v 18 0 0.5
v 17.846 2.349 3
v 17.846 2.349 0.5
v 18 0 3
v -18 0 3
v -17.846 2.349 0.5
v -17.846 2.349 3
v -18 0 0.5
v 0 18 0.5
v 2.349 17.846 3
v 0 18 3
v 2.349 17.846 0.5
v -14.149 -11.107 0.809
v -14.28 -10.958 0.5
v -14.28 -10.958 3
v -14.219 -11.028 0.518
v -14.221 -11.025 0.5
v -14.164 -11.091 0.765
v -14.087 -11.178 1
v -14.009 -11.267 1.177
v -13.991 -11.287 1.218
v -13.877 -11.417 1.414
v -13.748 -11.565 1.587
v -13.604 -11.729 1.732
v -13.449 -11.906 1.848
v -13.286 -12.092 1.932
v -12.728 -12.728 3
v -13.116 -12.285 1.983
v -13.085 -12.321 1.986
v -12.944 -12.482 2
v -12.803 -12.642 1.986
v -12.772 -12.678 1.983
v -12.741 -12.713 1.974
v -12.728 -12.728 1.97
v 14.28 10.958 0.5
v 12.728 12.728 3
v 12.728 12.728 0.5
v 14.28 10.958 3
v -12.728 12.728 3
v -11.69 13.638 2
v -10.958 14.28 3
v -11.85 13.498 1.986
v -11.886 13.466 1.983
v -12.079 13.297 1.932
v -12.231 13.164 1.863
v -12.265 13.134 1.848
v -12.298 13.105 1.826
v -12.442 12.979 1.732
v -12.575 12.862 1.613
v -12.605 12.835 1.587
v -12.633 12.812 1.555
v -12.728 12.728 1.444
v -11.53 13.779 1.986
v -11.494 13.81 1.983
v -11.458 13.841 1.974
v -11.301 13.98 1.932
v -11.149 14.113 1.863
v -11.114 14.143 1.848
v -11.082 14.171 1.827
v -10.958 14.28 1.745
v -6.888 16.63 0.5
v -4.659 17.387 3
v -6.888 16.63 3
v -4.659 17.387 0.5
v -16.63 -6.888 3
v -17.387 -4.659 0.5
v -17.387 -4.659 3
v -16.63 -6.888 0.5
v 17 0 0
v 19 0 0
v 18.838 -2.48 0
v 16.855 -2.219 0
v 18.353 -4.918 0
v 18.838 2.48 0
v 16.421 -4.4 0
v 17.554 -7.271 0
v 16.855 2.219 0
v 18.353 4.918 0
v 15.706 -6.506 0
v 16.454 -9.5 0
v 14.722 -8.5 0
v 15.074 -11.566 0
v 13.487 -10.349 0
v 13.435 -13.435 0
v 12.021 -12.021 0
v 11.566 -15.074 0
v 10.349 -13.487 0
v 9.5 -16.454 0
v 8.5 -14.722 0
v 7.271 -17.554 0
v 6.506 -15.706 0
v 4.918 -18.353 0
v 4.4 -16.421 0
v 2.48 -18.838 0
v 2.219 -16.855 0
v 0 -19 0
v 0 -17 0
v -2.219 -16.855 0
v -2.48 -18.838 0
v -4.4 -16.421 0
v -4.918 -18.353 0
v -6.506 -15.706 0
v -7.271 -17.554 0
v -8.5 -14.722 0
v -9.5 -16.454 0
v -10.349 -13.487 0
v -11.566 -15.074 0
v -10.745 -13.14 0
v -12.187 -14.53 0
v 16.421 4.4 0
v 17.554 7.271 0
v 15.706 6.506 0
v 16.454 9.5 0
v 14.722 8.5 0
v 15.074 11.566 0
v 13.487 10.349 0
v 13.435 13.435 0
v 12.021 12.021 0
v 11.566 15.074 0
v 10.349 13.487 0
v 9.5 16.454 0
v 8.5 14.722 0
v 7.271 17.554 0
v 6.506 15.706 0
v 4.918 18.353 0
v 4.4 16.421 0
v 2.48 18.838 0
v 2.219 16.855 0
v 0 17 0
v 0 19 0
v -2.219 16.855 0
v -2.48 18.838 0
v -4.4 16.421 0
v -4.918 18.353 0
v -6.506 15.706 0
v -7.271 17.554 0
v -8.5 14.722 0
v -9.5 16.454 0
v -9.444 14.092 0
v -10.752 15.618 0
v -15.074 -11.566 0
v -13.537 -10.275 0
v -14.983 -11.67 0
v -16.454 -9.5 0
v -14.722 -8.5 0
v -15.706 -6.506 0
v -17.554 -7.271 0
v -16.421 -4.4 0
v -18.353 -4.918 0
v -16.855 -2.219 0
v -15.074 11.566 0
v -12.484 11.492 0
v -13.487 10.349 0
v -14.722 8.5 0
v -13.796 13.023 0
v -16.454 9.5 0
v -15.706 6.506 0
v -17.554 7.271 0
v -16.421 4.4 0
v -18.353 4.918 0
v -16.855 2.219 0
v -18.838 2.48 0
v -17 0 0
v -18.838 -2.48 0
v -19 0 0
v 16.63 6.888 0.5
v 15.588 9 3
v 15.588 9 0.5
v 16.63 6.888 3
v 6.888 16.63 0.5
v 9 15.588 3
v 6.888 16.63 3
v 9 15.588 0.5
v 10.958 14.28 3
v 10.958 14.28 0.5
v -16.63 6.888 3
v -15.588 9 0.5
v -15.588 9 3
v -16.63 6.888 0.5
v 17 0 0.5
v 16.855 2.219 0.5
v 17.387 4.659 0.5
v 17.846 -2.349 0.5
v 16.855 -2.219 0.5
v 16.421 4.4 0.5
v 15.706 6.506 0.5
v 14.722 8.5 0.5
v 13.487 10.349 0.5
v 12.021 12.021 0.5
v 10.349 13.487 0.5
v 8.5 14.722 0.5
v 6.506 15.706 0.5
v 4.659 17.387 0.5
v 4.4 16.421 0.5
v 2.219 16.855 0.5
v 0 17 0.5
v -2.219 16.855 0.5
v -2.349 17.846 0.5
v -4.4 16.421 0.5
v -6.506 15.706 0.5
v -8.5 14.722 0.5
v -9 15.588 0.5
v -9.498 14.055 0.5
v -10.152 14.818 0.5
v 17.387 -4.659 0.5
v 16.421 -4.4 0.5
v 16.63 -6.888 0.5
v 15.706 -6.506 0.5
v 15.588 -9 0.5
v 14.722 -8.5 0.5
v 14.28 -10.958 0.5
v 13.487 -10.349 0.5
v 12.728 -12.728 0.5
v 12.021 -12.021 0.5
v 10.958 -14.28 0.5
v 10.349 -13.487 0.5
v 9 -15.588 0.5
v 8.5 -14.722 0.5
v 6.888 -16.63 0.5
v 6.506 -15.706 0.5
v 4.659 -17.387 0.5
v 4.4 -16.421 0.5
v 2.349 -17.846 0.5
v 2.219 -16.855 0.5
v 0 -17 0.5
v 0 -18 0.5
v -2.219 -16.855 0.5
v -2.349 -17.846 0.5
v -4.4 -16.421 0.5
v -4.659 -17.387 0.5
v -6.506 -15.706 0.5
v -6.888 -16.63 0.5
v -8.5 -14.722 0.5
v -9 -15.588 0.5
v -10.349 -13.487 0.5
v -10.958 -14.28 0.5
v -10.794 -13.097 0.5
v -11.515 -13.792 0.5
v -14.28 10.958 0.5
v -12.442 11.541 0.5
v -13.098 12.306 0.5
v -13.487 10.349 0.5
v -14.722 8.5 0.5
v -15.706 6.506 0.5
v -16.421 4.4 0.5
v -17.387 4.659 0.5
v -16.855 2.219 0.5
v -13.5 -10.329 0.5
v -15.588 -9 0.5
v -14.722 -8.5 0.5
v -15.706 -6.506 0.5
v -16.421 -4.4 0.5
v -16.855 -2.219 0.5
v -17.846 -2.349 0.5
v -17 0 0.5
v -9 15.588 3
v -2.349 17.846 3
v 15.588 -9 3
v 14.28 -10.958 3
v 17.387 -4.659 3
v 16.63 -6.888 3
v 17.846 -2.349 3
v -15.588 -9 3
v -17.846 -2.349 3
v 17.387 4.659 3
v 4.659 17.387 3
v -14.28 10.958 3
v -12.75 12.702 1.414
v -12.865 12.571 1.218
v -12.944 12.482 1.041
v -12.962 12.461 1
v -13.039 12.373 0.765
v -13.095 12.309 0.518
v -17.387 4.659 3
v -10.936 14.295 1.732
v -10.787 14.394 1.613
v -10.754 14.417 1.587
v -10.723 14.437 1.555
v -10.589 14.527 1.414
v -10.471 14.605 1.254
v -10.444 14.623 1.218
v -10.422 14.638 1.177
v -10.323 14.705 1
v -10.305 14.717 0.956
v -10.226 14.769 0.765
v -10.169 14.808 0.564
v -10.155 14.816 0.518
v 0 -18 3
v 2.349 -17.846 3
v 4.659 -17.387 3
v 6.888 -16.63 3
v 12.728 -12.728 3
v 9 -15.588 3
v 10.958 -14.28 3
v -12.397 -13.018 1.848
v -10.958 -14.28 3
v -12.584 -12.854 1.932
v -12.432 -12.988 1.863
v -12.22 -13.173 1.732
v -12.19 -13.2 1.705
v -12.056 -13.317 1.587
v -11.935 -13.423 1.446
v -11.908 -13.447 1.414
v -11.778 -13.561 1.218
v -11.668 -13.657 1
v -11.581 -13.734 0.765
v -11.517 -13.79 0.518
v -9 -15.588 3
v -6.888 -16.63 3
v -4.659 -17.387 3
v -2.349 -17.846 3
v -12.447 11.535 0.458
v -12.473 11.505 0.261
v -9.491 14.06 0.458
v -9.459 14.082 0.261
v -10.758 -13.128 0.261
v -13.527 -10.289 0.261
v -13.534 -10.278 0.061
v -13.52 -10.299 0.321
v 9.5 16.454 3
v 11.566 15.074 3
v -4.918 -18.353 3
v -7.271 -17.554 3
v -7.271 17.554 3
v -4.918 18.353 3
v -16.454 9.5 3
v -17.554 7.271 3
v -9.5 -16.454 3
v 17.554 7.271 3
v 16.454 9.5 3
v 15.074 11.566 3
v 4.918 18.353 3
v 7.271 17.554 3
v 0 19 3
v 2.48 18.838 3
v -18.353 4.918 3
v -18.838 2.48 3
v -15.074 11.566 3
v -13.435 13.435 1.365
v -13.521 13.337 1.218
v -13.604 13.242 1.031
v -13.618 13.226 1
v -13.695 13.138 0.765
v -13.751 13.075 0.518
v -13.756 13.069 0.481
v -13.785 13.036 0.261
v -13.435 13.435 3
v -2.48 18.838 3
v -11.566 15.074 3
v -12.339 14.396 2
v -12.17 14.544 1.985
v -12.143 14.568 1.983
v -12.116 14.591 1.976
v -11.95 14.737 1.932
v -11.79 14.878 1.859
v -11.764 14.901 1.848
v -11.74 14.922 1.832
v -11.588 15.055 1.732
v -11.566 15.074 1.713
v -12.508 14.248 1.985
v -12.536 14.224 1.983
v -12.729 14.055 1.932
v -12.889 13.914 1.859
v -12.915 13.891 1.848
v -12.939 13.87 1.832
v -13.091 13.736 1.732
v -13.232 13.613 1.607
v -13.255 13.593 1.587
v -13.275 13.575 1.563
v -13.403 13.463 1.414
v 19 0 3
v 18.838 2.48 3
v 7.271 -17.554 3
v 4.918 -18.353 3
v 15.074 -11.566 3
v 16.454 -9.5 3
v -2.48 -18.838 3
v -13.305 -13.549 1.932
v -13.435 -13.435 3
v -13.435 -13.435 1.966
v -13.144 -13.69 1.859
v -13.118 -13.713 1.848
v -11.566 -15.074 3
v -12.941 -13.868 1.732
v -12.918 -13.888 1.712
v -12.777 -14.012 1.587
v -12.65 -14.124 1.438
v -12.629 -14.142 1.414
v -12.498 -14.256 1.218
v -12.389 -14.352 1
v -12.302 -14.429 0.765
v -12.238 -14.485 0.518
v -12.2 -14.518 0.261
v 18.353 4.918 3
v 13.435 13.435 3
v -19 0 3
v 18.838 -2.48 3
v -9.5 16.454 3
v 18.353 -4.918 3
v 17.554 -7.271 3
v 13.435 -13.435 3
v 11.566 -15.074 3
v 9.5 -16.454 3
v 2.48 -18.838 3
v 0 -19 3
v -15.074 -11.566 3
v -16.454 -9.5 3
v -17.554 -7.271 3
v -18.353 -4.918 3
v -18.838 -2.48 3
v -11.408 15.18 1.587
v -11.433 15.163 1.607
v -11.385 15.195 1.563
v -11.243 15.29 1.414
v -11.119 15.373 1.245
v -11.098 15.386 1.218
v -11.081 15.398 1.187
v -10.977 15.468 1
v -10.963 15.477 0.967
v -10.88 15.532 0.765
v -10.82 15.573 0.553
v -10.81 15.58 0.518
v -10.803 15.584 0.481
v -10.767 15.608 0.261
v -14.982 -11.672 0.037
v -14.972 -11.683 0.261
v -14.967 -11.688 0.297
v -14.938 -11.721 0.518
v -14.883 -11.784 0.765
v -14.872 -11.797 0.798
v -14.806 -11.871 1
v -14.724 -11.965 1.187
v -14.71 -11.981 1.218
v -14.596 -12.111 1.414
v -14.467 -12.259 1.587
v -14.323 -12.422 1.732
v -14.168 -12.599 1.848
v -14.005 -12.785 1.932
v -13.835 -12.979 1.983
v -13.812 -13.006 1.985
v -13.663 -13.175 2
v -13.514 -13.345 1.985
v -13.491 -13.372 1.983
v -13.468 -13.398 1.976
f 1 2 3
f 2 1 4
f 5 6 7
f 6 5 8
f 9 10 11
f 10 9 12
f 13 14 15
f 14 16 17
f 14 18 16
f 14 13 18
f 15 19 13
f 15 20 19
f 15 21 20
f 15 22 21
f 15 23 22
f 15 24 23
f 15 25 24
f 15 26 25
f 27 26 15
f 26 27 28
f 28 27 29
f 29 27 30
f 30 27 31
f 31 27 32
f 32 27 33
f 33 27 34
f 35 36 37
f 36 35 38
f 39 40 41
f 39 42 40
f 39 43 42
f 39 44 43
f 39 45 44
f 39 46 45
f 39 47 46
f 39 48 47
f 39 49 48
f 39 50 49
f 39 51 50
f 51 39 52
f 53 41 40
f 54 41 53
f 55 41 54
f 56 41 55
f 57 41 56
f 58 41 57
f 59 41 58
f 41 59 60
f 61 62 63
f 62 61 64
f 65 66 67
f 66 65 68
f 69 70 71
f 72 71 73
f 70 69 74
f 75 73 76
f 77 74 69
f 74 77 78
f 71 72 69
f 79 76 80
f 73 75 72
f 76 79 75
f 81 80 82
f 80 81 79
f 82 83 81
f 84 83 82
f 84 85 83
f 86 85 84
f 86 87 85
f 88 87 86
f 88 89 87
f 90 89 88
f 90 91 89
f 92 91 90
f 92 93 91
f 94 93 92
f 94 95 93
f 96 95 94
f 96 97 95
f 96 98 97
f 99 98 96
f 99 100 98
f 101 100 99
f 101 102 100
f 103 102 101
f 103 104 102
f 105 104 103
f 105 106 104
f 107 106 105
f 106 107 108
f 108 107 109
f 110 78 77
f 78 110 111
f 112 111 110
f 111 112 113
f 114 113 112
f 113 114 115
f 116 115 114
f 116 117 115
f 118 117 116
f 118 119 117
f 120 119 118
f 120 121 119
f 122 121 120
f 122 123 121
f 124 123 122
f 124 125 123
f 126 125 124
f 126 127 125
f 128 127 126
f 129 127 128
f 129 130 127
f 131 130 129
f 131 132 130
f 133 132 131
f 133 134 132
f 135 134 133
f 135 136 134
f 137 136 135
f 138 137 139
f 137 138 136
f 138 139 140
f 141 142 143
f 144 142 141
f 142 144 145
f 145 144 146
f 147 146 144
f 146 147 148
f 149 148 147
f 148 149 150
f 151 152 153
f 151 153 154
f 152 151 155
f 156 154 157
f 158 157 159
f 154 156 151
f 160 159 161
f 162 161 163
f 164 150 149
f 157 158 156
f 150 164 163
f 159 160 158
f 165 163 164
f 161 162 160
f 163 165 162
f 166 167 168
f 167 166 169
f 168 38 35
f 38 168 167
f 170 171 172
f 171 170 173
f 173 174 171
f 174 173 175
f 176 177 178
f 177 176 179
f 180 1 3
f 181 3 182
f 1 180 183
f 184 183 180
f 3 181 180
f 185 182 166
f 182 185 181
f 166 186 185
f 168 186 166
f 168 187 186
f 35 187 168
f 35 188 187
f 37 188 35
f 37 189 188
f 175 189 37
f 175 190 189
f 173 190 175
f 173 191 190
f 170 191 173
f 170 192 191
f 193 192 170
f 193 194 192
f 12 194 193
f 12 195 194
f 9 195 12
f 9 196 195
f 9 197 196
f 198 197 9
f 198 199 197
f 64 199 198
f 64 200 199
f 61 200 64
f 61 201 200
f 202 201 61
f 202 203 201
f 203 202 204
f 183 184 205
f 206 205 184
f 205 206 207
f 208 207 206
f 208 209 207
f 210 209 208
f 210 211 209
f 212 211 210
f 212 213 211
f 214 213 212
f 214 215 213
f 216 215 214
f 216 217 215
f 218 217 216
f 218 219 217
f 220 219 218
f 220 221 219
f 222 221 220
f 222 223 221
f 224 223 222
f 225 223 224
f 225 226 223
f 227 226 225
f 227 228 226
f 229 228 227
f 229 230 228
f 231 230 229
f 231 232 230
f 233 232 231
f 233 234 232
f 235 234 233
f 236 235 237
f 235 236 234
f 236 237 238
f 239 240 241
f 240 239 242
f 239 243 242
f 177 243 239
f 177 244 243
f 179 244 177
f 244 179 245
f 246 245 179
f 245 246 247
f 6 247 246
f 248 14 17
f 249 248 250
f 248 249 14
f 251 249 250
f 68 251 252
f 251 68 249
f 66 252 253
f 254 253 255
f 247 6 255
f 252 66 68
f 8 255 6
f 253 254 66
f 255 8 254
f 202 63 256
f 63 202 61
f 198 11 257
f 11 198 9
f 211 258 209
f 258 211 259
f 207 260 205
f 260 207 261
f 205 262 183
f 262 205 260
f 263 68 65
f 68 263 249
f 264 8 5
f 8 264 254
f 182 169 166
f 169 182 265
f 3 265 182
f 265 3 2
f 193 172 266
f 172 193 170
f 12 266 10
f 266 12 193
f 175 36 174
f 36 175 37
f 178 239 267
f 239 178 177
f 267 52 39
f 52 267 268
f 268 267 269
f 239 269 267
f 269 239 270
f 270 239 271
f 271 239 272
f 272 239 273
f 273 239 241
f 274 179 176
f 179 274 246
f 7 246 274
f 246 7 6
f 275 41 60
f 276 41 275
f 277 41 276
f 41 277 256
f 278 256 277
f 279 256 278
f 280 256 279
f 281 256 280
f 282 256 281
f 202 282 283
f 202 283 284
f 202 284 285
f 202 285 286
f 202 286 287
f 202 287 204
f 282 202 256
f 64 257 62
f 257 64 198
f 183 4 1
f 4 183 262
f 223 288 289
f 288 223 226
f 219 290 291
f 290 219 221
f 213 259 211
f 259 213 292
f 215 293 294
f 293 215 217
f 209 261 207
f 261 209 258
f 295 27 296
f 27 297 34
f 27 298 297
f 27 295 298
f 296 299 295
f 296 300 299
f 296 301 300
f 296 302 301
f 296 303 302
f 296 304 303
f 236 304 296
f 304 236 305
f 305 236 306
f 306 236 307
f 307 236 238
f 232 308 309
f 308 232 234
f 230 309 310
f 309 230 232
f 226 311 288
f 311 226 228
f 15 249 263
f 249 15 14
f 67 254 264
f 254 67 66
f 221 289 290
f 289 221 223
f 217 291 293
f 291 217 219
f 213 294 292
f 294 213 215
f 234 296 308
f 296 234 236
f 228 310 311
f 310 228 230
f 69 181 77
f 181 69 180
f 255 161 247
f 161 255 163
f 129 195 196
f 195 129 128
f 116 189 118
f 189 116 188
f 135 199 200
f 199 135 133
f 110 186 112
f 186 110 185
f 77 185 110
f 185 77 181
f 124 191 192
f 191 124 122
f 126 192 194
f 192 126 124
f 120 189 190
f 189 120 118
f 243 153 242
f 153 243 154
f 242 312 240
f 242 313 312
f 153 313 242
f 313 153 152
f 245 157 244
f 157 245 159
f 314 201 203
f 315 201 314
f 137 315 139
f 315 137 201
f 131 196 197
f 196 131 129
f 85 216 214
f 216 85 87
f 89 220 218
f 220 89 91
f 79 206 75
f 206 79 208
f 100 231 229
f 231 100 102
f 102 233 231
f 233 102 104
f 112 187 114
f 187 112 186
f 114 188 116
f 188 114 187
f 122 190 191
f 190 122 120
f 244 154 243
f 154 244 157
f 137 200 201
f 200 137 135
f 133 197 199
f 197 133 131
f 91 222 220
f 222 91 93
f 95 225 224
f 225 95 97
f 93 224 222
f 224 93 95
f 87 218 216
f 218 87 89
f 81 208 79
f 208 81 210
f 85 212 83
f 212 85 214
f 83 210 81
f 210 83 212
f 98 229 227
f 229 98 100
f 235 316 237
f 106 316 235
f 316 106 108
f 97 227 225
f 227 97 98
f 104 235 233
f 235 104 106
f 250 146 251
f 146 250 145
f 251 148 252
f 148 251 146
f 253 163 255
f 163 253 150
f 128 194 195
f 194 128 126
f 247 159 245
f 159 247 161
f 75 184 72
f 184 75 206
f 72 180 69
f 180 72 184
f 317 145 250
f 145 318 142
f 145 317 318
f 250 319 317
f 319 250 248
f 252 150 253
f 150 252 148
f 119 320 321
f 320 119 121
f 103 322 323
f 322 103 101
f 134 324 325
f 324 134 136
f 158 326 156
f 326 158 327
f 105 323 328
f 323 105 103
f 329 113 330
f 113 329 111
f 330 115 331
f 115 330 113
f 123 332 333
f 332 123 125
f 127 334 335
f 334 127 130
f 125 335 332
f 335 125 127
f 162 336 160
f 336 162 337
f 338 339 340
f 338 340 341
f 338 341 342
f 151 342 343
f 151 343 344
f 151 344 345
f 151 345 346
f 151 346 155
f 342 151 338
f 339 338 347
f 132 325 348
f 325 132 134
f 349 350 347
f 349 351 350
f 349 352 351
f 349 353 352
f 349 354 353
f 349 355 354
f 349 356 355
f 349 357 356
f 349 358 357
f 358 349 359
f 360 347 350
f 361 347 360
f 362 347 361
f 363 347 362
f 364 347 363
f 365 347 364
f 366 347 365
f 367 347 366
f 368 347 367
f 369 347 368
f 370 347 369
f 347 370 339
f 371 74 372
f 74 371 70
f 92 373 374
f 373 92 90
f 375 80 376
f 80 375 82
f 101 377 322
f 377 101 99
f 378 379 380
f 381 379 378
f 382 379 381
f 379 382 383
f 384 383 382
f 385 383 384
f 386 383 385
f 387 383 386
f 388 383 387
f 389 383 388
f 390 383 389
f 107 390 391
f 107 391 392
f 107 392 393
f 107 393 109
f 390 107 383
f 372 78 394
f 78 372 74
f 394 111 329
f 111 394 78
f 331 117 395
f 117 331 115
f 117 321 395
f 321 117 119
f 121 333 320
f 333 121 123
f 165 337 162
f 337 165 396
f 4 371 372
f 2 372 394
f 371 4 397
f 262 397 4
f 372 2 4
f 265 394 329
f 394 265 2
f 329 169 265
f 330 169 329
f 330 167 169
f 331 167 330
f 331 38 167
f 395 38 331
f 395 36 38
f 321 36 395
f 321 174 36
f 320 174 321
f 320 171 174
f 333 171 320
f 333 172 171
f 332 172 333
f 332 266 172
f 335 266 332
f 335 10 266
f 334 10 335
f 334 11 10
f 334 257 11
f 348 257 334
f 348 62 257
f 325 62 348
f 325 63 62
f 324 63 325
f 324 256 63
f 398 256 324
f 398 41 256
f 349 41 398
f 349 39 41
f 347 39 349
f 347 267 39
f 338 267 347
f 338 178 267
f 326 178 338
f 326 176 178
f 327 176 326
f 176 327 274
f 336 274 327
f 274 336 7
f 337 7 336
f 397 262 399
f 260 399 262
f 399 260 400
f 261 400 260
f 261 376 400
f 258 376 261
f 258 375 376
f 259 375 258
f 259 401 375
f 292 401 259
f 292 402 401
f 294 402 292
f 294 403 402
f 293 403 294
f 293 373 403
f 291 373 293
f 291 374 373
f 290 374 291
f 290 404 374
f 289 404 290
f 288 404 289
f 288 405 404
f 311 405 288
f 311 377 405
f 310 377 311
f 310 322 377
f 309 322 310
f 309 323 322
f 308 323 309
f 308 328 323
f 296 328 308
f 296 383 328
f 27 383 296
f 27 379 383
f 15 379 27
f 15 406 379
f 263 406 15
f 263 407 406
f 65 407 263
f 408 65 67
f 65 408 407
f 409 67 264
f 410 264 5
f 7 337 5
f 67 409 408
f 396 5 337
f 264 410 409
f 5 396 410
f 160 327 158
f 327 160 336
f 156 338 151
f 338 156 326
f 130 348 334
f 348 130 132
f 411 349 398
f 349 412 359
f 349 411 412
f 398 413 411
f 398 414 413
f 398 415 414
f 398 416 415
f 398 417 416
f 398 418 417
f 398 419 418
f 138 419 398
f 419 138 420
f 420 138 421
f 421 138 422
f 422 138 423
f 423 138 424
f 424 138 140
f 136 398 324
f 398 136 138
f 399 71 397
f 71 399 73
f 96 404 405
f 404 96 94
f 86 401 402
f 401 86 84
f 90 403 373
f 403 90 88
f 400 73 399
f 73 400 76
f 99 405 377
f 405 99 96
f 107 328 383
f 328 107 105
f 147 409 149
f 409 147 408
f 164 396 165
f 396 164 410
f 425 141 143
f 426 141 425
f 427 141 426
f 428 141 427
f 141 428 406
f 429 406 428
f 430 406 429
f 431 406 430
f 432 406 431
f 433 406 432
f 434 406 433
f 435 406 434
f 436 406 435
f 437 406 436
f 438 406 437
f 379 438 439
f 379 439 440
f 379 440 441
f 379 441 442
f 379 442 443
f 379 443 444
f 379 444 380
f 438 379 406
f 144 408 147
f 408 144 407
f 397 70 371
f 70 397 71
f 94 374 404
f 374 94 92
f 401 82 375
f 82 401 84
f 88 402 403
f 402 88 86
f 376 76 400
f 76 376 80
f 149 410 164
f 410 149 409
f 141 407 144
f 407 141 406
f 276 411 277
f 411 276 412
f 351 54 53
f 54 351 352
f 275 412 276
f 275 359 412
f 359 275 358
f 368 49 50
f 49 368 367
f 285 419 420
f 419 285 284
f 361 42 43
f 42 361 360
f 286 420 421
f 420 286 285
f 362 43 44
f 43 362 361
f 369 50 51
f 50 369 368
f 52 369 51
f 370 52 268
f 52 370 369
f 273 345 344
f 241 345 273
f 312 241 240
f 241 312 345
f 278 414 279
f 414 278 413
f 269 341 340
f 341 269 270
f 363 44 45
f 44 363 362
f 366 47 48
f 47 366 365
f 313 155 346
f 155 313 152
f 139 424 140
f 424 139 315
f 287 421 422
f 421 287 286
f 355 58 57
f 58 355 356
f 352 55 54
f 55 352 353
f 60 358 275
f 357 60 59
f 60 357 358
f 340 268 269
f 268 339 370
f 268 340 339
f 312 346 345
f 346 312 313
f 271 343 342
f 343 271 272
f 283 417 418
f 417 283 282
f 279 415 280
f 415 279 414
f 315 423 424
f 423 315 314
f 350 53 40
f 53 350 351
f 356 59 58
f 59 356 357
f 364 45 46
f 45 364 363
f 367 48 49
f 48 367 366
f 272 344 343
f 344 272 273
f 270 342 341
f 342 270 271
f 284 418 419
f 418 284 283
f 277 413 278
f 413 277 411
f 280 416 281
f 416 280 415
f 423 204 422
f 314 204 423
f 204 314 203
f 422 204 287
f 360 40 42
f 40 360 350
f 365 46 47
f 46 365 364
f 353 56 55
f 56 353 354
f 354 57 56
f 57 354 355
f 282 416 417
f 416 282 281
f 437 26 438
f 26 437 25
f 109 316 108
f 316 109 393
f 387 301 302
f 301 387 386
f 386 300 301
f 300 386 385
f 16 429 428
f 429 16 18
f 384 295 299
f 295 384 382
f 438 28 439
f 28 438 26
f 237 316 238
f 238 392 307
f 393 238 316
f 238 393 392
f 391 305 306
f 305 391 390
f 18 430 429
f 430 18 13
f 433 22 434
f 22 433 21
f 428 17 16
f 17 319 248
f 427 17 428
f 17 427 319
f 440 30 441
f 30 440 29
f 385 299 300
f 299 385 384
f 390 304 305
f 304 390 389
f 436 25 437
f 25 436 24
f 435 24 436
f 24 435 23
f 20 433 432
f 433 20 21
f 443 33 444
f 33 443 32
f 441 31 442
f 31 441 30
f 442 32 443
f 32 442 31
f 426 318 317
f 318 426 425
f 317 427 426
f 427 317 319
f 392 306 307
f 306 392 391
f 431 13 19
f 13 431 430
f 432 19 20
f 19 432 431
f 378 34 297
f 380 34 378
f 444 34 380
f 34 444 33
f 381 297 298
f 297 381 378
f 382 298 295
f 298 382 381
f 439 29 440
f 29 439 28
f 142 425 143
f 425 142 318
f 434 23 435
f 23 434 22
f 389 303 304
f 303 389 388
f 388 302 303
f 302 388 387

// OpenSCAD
// file: ../build_environments.scad
// build_environments.scad: modules to build level sections
//

module pool(diameter=10.0, wall_height=2.0, step_width=3.0, connections=[])
{
    difference() {
        union() {
        difference() {
            cylinder(h=0.5,r1=diameter+step_width,r2=diameter+step_width,$fn=48);
            translate([0,0,-0.1])
                cylinder(h=0.7,r1=diameter,r2=diameter,$fn=48);
        }
        difference() {
            cylinder(h=wall_height,r1=diameter+step_width+1.0,r2=diameter+step_width+1.0,$fn=48);
            translate([0,0,-0.1])
                cylinder(h=wall_height+0.2,r1=diameter+step_width,r2=diameter+step_width,$fn=48);
        }
        }
    
        for (c = connections)
        {
            rotate([0,90,0]) {
                angle = atan2(c[1],c[0]);
                rotate([-angle,0,0]) {
                    cylinder(h=diameter+5.0,r1=c[2],r2=c[2],$fn=48);
                }
            }
        }
    }
}

module straight(length=10.0, width=2.0, dy1=0.0, dy2=0.0, dz=0.0)
{
    dims = [0, 0, 0, 0, 0, (dz/length)];
    matrix = [
        [ 1, dims[0], dims[1], 0 ],
        [ dims[2], 1, dims[4], 0 ],
        [ dims[5], dims[3], 1, 0 ],
        [ 0, 0, 0, 1 ]
    ];
    multmatrix(matrix)
    difference() {
        translate([dy1,0,0])
        union() {
            rotate([0,90,0]) {
                difference() {
                    cylinder(h=(length-dy1-dy2),r1=width+1.0,r2=width+1.0,$fn=24);
                    translate([0,0,-0.1])
                        cylinder(h=(length-dy1-dy2+0.2),r1=width,r2=width,$fn=24);
                }
                difference() {
                    cylinder(h=1.0,r1=width+2.0,r2=width+2.0,$fn=24);
                    translate([0,0,-0.1])
                        cylinder(h=1.2,r1=width,r2=width,$fn=24);
                }
                translate([0,0,(length-dy1-dy2)-1.0]) {
                    difference() {
                        cylinder(h=1.0,r1=width+2.0,r2=width+2.0,$fn=24);
                        translate([0,0,-0.1])
                            cylinder(h=1.2,r1=width,r2=width,$fn=24);
                    }
                }
            }
        }
        translate([0,0,-(2*width+4.0)/2])
            cube([3*length,3*length,2*width+4.0],center=true);
    }
}

module curve(p0=[0,0], center=[0,0], dir=1, angle=0.0, width=2.0)
{
    radius = sqrt((p0[0]-center[0])*(p0[0]-center[0]) + (p0[1]-center[1])*(p0[1]-center[1]));
    if (dir == 0) {
        difference() {
            rotate([0,0,-90])
            difference() {
                rotate_extrude(angle = angle, convexity = 10, $fn=32)
                    translate([radius, 0, 0])
                        circle(r = width+1.0,$fn=24);
                rotate([0,0,-1.0])
                    rotate_extrude(angle = angle+2.0, convexity = 10, $fn=32)
                        translate([radius, 0, 0])
                            circle(r = width,$fn=24);
            }
            translate([0,0,-(2*width+4.0)/2])
                cube([5*radius,5*radius,2*width+4.0],center=true);
        }
    }
    else {
        difference() {
            rotate([0,0,90])
            difference() {
                rotate_extrude(angle = -angle, convexity = 10, $fn=32)
                    translate([radius, 0, 0])
                        circle(r = width+1.0,$fn=24);
                rotate([0,0,1.0])
                    rotate_extrude(angle = -angle-2.0, convexity = 10, $fn=32)
                        translate([radius, 0, 0])
                            circle(r = width,$fn=24);
            }
            translate([0,0,-(2*width+4.0)/2])
                cube([5*radius,5*radius,2*width+4.0],center=true);
        }
    }

}

// test pool
//pool(diameter=12.0000, wall_height=3.0000, step_width=3.0000, connections=[[0.0000,-26.0000,2.0000], [23.6074,0.0000,2.0000]]);

// test straight, slope
//straight(length=26.0000, width=2.0000, dy1=11.8322, dy2=6.7082, dz=0.0000);
//straight(length=29.1549, width=12.0000, dy1=0.0000, dy2=0.0000, dz=-15.0000);

// test curve
//curve(p0=[23.6074, 0.0000], center=[23.6074, 5.0000], dir=0, angle=60.1011, width=2.0000);
//curve(p0=[33.6426, 12.4219], center=[37.9771, 9.9295], dir=1, angle=120.4627, width=2.0000);
// main file
use <../build_environments.scad>;
pool(diameter=17.0000, wall_height=3.0000, step_width=1.0000, connections=[[-24.0000,28.0000,2.0000], [-28.0000,-27.0000,2.0000]]);
